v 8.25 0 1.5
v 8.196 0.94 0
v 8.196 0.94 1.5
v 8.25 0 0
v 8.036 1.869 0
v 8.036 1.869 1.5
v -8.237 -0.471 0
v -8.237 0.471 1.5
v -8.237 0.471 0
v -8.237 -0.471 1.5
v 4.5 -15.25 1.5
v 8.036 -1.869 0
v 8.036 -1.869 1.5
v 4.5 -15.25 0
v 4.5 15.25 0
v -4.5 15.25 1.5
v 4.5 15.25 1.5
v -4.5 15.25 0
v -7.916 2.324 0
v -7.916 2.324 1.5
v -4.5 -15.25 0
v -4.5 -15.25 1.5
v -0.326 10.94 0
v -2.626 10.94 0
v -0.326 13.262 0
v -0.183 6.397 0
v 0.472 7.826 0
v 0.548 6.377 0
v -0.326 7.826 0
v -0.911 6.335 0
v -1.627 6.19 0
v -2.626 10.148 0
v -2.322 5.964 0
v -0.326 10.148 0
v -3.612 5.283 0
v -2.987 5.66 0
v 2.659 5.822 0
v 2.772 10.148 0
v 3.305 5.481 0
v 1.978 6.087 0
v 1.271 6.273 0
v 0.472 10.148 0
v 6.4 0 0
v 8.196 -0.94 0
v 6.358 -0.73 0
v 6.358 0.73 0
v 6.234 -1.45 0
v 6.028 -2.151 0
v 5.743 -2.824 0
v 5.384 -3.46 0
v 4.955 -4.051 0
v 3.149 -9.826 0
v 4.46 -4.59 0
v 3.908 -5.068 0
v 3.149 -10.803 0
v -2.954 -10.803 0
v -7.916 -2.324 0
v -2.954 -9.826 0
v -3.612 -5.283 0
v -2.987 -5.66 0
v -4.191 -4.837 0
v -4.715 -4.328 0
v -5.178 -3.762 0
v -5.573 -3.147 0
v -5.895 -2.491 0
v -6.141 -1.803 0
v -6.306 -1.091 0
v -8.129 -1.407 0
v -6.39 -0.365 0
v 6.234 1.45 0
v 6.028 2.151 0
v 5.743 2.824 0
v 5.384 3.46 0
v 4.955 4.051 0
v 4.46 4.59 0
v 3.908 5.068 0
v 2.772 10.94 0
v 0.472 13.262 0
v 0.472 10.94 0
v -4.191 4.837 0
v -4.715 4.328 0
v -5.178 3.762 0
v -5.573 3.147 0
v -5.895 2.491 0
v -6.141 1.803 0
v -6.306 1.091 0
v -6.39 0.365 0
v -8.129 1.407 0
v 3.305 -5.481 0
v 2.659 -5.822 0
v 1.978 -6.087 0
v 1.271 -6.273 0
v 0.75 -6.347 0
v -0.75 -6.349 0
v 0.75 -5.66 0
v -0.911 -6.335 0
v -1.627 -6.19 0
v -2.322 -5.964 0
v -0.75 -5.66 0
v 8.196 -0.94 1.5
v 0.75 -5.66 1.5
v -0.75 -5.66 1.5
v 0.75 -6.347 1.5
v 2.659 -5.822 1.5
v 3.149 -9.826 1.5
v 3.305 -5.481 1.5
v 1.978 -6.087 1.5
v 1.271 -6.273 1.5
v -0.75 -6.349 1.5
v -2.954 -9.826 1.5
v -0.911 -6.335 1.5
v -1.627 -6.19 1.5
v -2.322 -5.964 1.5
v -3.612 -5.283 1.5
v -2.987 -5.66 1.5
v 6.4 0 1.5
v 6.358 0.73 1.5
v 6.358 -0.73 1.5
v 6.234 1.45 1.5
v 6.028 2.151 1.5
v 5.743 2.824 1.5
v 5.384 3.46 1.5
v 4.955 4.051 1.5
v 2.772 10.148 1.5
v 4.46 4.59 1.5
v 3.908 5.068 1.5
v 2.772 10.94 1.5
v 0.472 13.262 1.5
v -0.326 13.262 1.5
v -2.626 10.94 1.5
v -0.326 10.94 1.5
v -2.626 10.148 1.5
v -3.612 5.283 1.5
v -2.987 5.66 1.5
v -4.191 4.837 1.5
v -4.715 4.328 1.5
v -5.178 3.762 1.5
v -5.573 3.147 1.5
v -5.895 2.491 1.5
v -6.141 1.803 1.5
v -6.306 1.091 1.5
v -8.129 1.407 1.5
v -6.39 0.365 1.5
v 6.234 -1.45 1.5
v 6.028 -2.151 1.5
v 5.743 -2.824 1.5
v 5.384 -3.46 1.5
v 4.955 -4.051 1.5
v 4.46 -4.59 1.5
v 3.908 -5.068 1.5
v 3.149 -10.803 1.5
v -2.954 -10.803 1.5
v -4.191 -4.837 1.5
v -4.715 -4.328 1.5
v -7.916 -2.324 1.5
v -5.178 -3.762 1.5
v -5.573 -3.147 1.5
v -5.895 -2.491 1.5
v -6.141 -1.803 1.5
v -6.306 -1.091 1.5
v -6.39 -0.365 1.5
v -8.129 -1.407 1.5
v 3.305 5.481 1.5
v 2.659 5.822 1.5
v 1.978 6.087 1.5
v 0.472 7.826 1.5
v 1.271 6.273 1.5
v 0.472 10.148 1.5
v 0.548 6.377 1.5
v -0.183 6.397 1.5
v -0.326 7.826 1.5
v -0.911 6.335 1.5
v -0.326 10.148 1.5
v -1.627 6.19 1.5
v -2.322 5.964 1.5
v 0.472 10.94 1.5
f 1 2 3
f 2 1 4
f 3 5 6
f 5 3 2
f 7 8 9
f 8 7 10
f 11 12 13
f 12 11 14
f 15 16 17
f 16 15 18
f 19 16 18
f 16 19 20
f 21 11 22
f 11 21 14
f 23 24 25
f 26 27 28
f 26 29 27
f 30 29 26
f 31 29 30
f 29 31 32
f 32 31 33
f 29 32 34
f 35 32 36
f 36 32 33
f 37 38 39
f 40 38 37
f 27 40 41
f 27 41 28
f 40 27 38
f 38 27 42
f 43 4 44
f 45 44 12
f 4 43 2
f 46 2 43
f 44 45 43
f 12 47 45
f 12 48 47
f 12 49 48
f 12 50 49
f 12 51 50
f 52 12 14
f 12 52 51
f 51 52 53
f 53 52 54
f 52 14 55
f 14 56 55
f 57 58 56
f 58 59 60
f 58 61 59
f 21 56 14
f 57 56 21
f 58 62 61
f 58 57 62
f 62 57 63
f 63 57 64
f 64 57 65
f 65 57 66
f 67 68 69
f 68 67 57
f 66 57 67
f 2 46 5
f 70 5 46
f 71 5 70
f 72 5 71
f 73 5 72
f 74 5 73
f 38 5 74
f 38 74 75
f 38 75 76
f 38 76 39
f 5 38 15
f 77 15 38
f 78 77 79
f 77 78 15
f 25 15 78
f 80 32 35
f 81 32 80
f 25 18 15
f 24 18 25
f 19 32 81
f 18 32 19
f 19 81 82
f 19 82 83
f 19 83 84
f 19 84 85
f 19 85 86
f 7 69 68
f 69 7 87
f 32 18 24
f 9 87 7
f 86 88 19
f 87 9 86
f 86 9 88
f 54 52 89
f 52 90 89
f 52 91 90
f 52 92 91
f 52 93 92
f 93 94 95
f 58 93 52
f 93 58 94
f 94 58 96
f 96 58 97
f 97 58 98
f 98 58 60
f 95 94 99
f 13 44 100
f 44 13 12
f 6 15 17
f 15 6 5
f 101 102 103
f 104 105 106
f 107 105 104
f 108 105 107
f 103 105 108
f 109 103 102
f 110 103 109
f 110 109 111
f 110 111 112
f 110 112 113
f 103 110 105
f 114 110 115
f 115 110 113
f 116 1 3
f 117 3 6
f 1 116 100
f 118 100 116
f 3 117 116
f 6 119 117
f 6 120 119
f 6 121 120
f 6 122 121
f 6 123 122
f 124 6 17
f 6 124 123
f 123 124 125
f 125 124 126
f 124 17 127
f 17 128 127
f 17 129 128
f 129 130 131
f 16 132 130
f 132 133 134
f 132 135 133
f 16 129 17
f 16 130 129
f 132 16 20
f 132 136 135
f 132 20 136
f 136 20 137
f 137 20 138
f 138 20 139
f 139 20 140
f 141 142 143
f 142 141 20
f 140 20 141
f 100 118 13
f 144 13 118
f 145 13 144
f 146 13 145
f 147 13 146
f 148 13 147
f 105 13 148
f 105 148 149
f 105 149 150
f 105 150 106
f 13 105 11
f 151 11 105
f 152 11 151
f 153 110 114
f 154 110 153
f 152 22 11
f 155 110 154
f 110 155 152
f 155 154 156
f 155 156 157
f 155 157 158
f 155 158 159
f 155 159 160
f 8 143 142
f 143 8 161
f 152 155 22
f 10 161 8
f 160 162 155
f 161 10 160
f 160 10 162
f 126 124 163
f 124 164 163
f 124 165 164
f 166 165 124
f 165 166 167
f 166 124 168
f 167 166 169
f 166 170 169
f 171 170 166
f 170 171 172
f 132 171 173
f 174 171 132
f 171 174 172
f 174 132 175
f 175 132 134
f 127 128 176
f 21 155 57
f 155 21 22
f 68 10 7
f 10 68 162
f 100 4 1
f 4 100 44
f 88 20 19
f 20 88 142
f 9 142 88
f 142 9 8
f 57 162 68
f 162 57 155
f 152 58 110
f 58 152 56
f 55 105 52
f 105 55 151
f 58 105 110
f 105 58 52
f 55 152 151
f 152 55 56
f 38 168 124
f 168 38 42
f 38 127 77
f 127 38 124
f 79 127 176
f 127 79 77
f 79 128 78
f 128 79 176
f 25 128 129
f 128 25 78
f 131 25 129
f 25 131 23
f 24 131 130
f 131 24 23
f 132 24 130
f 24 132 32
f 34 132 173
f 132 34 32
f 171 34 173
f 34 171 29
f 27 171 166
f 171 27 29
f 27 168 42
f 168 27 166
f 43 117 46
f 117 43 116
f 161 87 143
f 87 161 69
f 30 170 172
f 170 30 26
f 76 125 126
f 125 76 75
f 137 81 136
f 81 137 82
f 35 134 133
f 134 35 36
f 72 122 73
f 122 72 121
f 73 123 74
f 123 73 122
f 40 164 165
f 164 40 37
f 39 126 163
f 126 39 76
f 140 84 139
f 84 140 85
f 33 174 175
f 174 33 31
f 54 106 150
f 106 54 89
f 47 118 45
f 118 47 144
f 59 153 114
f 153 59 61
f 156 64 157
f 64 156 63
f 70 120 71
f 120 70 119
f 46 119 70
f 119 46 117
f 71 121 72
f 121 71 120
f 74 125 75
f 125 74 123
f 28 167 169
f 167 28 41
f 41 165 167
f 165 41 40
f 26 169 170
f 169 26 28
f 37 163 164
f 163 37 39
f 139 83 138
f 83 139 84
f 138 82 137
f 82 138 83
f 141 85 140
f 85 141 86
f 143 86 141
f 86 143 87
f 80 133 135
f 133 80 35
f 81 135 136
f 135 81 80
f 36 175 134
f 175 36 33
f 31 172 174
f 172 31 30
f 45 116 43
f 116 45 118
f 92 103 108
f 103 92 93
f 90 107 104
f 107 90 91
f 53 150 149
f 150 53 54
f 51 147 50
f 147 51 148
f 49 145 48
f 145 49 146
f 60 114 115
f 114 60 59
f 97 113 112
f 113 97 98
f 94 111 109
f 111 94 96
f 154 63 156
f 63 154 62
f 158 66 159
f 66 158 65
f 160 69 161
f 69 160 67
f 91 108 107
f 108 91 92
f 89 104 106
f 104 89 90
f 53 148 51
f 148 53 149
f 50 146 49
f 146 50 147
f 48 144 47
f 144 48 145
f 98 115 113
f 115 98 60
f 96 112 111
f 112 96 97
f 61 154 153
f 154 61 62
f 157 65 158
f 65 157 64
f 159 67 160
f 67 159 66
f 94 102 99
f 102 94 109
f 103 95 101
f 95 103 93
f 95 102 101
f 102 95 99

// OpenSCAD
// Naomi Yescas
// 08-30-21
// Rings go over switches to act as removable labels

$fn = 55;

ringID = 12.8;
ringOD = 16.5;

labelCubex = 9;
labelCubey = 7;

thickness = 1.5;

nubDepth = 0.79;
nubWidth = 1.5;

difference(){
    // combine outer cylinder with side cubes
    hull(){
        // OD cylinder
        cylinder(d = ringOD, h = thickness);
        //top cube
        translate([0,ringOD/2+labelCubey/2,thickness/2])
            cube([labelCubex,labelCubey,thickness], center=true);
        //bottom cube
        translate([0,-ringOD/2-labelCubey/2,thickness/2])
            cube([labelCubex,labelCubey,thickness], center=true);
    }
    // - Label
    translate([0,-ringOD/2-labelCubey/1.3,0])
        linear_extrude(3)
            scale([2,1,1])text(size=9,"-",halign="center");
    // + label
    translate([0,+ringOD/2-1.4,0])
        linear_extrude(3)
            scale([1,1,1])text(size=8,"+",halign="center");
    
    // inner cylinder
    translate([0,0,-2])
        cylinder(d = ringID, h = thickness+10);
} 

// keyslot nub 
translate([0,-ringID/2+nubDepth/2-0.05,thickness/2])cube([nubWidth,nubDepth,thickness],center=true);
